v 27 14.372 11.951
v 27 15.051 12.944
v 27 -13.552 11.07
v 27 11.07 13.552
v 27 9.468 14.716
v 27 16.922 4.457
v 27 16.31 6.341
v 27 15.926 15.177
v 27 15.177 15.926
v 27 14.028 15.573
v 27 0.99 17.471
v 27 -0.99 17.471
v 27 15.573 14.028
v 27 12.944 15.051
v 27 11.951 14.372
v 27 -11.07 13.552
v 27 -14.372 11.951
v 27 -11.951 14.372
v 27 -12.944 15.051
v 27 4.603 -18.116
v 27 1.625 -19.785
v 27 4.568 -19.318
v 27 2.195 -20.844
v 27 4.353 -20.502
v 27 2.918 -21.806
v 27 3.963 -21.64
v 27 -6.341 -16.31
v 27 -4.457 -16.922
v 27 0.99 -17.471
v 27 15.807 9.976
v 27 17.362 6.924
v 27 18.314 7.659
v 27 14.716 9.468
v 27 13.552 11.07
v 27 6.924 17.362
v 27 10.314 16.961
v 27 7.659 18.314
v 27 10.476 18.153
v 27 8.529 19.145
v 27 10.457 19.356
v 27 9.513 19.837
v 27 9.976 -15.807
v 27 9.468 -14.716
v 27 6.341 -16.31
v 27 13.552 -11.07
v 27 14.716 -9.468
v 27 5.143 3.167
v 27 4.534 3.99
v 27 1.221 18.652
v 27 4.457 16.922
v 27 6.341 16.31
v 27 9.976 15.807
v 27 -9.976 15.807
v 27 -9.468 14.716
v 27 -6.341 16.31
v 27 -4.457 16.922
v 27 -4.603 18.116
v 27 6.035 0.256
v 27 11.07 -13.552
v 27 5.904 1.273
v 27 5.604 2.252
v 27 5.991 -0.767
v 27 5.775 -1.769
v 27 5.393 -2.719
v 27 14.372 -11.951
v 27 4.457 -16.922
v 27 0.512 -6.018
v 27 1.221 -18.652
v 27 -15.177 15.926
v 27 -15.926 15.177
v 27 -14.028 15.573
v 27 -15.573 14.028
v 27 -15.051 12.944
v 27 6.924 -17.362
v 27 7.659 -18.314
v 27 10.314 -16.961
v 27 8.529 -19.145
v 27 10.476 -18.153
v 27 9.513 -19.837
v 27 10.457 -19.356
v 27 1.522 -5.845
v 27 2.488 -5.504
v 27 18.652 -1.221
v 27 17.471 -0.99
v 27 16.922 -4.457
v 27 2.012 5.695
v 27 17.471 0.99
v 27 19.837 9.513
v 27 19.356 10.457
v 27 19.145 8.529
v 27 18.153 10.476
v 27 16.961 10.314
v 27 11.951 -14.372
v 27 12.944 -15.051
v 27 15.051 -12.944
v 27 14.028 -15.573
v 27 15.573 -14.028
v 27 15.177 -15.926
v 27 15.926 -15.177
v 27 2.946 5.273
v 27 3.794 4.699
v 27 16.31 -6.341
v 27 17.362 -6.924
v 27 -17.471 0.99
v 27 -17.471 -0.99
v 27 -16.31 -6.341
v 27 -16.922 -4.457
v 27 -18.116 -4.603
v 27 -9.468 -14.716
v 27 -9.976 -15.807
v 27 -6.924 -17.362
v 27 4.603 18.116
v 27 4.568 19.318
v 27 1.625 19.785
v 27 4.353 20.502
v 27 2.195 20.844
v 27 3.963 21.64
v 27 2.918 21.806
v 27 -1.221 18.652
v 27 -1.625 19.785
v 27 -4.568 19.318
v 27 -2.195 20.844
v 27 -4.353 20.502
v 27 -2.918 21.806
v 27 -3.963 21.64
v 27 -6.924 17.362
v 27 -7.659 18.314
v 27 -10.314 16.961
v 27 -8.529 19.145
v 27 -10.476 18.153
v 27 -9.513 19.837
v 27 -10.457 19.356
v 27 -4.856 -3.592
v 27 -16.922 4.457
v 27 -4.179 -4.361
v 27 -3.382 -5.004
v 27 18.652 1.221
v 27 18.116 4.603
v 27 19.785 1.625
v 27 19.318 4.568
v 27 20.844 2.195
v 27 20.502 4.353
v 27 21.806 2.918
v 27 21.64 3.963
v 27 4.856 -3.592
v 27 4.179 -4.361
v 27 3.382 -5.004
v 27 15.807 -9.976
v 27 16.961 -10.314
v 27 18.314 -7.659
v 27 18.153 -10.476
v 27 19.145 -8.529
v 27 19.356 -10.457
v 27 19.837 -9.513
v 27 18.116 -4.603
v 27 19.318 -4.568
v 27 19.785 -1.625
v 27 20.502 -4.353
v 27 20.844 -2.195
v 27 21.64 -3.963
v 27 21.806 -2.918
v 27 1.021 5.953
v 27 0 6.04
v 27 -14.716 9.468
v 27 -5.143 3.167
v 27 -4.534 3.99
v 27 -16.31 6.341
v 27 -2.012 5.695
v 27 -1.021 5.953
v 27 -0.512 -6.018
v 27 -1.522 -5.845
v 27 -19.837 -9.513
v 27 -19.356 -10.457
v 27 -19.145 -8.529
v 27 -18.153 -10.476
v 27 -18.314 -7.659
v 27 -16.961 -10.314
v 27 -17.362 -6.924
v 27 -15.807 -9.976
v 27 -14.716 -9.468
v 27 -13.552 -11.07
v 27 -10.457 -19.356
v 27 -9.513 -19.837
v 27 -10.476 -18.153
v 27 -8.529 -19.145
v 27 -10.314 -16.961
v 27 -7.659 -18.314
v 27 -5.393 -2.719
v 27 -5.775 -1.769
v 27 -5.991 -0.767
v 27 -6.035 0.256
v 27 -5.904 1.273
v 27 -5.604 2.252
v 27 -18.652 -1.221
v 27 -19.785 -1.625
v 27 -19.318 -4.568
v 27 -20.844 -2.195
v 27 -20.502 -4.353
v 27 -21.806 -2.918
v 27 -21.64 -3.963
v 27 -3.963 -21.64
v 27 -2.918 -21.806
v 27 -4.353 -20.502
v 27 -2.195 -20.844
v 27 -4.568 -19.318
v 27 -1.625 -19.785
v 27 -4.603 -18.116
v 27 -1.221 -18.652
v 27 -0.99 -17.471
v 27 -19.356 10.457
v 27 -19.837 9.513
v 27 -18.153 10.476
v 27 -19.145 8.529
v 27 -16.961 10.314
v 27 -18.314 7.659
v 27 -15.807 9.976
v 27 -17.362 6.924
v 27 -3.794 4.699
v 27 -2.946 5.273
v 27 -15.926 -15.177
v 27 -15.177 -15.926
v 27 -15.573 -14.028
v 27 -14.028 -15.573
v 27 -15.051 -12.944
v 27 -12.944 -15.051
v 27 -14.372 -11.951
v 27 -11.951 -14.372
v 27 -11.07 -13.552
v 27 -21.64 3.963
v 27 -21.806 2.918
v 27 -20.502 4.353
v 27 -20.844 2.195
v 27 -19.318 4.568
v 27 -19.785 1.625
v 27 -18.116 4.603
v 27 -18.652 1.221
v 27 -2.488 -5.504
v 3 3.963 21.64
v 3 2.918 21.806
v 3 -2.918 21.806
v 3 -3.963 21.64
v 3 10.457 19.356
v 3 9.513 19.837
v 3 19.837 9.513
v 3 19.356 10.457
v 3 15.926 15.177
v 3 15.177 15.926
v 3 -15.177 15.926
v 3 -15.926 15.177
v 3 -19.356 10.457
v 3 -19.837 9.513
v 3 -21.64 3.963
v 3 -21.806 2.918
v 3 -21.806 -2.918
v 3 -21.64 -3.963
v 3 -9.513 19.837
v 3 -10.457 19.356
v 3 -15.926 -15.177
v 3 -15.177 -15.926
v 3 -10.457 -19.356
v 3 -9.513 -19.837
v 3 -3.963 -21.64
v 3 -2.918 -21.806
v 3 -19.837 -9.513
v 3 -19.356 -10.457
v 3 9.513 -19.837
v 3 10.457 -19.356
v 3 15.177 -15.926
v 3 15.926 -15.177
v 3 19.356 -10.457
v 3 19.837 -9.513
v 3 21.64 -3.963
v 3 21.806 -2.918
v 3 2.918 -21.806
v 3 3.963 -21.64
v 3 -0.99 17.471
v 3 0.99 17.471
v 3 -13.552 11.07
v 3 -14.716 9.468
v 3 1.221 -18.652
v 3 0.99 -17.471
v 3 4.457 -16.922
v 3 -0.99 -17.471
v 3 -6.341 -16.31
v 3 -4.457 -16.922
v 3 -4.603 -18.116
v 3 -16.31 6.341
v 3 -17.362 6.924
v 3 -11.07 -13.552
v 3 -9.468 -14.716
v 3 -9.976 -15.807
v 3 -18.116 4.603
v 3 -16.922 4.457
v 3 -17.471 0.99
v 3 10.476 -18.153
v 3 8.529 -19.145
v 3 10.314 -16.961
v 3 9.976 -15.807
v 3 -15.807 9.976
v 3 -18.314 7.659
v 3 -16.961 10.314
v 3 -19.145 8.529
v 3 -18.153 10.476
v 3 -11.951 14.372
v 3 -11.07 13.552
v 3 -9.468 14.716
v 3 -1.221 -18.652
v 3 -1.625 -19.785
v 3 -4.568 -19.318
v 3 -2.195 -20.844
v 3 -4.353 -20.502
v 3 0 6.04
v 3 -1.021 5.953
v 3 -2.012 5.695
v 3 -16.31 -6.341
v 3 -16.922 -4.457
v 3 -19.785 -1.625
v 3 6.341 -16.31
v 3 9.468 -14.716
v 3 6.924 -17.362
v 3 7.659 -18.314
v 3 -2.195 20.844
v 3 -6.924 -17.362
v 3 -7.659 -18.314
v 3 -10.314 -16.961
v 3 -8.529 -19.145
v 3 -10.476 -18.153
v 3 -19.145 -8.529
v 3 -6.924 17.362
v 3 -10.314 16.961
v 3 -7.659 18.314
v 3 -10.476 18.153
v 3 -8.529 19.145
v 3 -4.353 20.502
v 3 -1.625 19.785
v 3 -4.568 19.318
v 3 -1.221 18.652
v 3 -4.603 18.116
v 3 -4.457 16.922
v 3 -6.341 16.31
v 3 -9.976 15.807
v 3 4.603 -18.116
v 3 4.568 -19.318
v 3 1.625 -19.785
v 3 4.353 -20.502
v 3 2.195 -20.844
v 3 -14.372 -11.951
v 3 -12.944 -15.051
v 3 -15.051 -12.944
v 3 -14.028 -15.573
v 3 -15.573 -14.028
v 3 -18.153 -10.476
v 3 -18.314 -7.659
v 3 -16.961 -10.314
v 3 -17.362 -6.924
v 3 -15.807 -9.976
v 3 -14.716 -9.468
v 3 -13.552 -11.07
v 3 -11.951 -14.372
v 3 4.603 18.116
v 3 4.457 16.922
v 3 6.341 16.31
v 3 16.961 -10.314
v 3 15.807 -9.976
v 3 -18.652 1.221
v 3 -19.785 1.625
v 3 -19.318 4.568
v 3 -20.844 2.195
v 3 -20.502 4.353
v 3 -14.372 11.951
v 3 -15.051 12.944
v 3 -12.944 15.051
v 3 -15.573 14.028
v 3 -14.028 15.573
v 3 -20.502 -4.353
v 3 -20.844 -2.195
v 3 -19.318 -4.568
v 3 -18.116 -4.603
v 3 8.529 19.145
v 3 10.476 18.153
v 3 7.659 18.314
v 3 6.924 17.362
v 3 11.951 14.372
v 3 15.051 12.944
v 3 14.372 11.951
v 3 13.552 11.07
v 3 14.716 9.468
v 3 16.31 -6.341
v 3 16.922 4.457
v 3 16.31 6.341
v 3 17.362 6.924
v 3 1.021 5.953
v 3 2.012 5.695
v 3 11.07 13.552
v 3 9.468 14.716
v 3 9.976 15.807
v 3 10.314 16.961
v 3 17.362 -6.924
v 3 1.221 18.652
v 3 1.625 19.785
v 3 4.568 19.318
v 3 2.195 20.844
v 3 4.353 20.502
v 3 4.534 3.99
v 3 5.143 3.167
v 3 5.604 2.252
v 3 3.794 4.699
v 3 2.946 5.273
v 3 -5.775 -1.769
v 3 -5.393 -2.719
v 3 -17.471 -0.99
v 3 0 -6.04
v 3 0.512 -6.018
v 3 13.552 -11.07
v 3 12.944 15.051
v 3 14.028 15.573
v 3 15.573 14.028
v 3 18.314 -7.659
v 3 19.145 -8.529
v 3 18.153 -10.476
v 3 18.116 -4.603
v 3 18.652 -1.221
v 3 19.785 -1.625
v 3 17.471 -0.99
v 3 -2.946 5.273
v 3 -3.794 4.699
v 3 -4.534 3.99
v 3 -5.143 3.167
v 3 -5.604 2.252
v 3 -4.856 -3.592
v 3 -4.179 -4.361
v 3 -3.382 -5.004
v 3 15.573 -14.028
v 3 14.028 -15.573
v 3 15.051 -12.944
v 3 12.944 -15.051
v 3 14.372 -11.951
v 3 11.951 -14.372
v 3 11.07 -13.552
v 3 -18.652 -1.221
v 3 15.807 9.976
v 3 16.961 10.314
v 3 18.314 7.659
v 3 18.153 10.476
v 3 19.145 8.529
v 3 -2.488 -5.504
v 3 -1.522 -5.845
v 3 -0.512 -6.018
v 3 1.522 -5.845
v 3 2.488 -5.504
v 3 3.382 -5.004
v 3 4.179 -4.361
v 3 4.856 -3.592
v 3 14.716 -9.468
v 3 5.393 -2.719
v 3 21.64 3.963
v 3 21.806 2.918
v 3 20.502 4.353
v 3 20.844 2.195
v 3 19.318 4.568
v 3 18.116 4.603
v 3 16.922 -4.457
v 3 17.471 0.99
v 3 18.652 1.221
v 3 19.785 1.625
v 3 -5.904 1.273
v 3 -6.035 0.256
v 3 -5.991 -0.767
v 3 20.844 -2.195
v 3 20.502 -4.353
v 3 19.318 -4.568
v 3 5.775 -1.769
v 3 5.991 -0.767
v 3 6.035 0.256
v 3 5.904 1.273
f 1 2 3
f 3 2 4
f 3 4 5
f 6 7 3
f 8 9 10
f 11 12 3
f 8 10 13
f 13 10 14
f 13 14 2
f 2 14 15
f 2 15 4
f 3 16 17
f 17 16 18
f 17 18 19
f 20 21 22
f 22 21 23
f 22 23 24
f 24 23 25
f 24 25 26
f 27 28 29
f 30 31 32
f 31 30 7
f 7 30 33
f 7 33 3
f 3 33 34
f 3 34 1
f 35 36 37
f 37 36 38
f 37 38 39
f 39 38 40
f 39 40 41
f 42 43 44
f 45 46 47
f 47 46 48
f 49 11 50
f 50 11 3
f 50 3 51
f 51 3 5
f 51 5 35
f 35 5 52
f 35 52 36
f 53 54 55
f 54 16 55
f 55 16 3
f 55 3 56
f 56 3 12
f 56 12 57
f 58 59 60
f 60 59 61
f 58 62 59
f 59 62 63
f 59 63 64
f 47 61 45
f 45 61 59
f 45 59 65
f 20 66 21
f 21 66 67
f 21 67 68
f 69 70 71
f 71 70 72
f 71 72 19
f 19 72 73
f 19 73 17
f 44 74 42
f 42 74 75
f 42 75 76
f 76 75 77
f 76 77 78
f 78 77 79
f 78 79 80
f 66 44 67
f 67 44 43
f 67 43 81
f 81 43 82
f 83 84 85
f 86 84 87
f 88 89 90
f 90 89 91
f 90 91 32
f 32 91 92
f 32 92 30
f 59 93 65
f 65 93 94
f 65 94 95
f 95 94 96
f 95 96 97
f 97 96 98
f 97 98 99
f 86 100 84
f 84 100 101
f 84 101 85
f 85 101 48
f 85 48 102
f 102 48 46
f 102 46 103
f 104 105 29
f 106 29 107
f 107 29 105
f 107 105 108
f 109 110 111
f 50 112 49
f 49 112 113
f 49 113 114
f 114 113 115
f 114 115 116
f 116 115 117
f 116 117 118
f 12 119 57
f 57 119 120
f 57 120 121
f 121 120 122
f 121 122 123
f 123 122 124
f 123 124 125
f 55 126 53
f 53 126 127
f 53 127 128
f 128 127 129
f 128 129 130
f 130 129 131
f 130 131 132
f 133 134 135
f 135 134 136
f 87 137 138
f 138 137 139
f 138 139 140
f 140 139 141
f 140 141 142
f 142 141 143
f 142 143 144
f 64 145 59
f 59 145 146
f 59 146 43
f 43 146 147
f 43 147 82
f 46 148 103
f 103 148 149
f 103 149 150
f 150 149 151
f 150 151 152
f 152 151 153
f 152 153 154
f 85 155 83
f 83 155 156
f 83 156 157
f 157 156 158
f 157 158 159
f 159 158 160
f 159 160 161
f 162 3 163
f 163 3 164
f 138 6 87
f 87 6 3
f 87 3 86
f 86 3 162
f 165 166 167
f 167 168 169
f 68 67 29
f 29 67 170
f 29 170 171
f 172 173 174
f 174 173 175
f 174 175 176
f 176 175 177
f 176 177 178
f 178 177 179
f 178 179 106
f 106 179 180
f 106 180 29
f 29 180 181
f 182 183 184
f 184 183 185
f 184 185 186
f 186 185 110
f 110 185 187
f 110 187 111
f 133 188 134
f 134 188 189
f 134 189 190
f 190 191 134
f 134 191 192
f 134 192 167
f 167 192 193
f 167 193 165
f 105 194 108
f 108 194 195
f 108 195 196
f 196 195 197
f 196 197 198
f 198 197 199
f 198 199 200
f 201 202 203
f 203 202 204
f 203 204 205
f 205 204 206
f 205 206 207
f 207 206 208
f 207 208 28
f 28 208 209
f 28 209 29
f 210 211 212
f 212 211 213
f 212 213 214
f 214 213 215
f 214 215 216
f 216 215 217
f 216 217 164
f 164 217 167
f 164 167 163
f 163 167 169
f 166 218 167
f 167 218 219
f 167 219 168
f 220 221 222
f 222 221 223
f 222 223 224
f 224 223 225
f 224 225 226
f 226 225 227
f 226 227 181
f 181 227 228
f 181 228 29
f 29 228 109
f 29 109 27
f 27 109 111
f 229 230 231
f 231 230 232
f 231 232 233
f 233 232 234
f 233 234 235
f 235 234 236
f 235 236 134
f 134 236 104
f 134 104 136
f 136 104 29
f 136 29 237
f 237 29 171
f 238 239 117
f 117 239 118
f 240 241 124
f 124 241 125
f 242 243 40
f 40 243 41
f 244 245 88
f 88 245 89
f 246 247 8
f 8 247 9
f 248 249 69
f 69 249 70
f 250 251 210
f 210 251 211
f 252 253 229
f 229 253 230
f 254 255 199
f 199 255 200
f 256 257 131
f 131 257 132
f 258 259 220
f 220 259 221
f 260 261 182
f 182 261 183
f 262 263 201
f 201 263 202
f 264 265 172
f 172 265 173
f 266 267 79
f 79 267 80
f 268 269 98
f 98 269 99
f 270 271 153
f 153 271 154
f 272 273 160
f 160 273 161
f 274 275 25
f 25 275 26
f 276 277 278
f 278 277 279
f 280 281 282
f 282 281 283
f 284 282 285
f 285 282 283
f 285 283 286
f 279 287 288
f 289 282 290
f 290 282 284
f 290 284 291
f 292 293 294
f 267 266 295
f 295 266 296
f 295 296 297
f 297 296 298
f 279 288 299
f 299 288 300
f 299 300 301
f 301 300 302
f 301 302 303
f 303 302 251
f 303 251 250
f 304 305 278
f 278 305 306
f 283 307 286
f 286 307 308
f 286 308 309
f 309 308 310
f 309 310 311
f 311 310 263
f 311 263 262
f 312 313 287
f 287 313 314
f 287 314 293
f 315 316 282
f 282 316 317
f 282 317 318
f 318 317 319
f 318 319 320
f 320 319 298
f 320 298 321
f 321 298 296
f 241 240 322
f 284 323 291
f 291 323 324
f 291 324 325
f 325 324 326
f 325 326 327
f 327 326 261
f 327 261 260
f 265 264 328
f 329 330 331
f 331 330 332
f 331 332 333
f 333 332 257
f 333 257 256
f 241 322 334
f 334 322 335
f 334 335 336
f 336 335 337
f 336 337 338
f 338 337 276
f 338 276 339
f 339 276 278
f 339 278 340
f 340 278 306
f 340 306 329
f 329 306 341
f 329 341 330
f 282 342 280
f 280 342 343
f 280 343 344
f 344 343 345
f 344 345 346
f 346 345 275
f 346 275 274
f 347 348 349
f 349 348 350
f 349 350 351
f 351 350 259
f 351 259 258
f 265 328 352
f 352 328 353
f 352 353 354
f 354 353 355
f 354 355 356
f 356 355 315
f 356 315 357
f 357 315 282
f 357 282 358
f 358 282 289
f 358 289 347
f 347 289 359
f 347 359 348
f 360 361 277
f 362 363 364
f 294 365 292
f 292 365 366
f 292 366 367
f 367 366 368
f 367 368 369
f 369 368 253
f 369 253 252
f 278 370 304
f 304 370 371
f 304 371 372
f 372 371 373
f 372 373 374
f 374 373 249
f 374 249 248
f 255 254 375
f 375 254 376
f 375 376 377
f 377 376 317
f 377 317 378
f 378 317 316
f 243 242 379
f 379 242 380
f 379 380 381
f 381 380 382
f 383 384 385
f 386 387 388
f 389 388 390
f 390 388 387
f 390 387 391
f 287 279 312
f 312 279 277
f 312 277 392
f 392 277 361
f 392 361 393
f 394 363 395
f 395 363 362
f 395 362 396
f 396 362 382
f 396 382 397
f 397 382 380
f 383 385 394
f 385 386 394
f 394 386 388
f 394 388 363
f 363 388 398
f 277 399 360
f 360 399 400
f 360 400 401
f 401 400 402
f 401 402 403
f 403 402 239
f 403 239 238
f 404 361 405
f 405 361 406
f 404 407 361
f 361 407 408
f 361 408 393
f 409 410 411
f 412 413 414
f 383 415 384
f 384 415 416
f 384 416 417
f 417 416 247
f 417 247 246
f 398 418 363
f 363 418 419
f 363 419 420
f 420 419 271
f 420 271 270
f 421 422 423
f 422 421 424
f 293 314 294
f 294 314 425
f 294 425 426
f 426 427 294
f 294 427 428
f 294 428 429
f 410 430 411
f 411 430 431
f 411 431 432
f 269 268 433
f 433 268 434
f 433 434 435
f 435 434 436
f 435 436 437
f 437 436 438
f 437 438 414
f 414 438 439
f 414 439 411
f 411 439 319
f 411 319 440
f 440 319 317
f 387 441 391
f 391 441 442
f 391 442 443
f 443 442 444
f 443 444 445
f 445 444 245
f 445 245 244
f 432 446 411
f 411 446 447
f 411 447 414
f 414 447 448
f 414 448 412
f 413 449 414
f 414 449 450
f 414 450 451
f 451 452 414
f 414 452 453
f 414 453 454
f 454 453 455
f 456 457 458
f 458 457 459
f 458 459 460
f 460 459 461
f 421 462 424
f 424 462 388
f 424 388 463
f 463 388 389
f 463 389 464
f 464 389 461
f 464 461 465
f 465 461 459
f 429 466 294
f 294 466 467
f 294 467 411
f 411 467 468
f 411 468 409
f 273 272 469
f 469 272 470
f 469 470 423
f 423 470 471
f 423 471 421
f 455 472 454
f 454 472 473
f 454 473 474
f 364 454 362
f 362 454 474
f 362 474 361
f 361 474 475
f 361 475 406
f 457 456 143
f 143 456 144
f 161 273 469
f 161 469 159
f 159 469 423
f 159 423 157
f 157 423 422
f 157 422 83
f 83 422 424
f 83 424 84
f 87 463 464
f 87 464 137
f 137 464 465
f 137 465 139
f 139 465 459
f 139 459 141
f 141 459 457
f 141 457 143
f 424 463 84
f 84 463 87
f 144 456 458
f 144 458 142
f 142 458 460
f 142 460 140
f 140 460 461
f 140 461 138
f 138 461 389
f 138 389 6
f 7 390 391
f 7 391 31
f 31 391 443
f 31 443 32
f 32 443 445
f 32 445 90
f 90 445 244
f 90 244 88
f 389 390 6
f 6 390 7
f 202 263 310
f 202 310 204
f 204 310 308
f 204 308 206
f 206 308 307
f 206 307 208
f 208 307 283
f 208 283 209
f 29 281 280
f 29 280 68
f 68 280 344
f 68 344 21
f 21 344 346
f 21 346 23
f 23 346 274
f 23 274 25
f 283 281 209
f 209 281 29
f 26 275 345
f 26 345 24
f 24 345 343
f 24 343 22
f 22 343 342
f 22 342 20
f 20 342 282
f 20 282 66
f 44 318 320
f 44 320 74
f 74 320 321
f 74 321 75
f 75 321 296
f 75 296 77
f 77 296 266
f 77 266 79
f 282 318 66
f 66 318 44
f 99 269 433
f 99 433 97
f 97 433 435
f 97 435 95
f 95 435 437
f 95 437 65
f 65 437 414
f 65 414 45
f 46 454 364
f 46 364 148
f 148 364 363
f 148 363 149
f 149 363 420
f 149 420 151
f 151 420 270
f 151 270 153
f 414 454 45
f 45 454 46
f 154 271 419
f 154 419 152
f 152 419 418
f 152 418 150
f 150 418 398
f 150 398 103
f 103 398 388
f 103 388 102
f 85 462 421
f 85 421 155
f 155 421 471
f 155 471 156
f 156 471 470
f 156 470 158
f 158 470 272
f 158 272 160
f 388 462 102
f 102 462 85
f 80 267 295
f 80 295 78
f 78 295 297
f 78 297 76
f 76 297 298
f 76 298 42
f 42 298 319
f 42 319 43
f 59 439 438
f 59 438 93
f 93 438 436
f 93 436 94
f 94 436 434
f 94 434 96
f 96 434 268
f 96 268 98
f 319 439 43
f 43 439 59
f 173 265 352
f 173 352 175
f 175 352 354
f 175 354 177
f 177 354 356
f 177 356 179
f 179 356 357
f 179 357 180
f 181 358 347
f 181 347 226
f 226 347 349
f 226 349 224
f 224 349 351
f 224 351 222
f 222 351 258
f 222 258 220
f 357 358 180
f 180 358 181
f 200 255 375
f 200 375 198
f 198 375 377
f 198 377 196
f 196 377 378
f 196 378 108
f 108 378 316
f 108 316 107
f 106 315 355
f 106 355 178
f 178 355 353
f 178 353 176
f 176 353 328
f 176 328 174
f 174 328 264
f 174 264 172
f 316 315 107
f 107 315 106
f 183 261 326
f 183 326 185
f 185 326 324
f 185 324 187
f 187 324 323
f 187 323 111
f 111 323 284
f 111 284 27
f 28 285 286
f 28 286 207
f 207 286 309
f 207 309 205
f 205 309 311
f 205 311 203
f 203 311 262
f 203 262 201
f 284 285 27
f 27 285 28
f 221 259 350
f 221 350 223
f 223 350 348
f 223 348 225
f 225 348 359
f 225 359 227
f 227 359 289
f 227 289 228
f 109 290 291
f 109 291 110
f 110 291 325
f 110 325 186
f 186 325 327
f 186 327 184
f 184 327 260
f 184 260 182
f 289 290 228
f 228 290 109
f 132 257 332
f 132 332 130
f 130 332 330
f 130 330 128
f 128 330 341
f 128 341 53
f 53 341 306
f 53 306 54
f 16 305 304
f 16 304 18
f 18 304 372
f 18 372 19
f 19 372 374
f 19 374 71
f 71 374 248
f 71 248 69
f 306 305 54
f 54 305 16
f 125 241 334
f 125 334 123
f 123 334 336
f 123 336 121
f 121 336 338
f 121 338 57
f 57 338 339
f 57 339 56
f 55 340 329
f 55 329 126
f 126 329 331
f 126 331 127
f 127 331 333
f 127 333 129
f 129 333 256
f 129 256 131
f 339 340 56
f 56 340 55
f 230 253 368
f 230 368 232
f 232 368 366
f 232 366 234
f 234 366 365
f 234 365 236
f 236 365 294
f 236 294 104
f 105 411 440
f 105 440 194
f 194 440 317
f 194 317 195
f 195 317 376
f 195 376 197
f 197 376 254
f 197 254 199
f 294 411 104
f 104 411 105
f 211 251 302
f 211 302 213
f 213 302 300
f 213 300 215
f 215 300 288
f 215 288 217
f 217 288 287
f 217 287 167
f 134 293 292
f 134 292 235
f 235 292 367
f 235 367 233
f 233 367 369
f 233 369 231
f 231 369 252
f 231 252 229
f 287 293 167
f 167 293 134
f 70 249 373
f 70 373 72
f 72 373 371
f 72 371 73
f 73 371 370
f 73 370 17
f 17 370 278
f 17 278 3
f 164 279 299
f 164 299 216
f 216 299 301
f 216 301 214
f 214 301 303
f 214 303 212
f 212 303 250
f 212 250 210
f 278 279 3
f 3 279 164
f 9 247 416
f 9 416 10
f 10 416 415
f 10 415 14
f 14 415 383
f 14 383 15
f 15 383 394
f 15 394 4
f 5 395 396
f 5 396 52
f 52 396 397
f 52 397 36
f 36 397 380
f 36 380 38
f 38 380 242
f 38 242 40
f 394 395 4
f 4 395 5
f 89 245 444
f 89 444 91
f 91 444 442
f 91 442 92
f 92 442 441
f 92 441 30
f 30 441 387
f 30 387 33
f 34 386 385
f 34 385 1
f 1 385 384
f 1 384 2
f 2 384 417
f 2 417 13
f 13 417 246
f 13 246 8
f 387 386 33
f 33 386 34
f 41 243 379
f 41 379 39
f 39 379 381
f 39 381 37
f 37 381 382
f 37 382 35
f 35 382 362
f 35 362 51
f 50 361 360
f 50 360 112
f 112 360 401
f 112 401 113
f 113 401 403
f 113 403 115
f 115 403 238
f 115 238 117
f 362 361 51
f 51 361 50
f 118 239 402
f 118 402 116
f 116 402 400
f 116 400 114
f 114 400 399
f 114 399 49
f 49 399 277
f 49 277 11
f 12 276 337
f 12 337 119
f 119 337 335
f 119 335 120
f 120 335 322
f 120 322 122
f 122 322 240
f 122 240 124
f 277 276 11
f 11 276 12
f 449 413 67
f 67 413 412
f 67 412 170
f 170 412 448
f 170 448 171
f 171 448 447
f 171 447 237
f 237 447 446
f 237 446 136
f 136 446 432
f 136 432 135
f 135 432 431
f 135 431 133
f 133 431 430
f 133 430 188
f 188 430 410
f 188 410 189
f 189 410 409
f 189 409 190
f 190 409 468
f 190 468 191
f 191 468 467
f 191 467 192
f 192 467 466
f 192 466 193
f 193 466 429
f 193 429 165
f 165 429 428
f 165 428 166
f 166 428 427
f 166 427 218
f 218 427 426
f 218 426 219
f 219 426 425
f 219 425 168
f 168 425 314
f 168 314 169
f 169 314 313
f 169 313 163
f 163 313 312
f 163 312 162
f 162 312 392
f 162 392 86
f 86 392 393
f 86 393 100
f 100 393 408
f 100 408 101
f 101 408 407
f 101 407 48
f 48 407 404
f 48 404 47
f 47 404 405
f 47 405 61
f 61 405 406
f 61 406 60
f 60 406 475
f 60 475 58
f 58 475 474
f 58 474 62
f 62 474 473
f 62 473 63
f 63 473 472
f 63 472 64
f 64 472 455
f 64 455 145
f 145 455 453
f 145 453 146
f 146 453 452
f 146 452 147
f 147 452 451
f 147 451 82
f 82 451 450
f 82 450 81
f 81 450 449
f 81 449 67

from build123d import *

# Parameters (mm, degrees)
BASPROSKE_W     = 30
BASPROSKE_H     = 27.5
TOOTHCUT_DEPTH  = 50.117206761
TEETHCUTS_COUNT = 20
TEETHCUTS_ANGLE = 342
BORSKE_R        = 7.55
BORE_DEPTH      = 50.000508
SCALE1_SCALE    = 0.8


with BuildPart() as part:
    # BasProSke → Base-Revolve (revolve)
    with BuildSketch(Plane(origin=(0, 0, 0), x_dir=(1, 0, 0), z_dir=(0, 1, 0)), mode=Mode.PRIVATE) as base_revolve_sk:
        with Locations((15, 13.75)):
            Rectangle(BASPROSKE_W, BASPROSKE_H)
    revolve(base_revolve_sk.sketch.rotate(Axis((-10, 0, 0), (1, 0, 0)), 180), axis=Axis((-10, 0, 0), (1, 0, 0)))

    # TooCutSke → ToothCut (cut, through all)
    with BuildSketch(Plane(origin=(0, 0, 0), x_dir=(0, 0, -1), z_dir=(1, 0, 0))):
        with BuildLine():
            ThreePointArc((1.237725267, 21.838954008), (0, 21.874), (-1.237725267, 21.838954008))
            ThreePointArc((-1.237725267, 21.838954008), (-2.095118569, 24.870704072), (-3.853229952, 27.485216662))
            ThreePointArc((-3.853229952, 27.485216662), (0, 27.754), (3.853229952, 27.485216662))
            ThreePointArc((3.853229952, 27.485216662), (2.095118569, 24.870704072), (1.237725267, 21.838954008))
        make_face()
    toothcut = extrude(amount=TOOTHCUT_DEPTH, mode=Mode.SUBTRACT)

    # TeethCuts: ToothCut ×20 about axis
    teethcuts_axis = Axis((-10, 0, 0), (1, 0, 0))
    for i in range(1, TEETHCUTS_COUNT):
        add(toothcut.rotate(teethcuts_axis, i * TEETHCUTS_ANGLE / (TEETHCUTS_COUNT - 1)), mode=Mode.SUBTRACT)

    # BorSke → Bore (cut, symmetric)
    with BuildSketch(Plane(origin=(0, 0, 0), x_dir=(0, 0, -1), z_dir=(1, 0, 0))):
        with Locations(Location((0, 0, 0), (0, 0, 180))):
            Circle(BORSKE_R)
    extrude(amount=BORE_DEPTH, both=True, mode=Mode.SUBTRACT)


with BuildPart() as part_1:
    # Scale1: scaled about (15, 0, 0)
    add(part.part.scale(SCALE1_SCALE).moved(Location((3, 0, 0))))


solid = part_1.part
